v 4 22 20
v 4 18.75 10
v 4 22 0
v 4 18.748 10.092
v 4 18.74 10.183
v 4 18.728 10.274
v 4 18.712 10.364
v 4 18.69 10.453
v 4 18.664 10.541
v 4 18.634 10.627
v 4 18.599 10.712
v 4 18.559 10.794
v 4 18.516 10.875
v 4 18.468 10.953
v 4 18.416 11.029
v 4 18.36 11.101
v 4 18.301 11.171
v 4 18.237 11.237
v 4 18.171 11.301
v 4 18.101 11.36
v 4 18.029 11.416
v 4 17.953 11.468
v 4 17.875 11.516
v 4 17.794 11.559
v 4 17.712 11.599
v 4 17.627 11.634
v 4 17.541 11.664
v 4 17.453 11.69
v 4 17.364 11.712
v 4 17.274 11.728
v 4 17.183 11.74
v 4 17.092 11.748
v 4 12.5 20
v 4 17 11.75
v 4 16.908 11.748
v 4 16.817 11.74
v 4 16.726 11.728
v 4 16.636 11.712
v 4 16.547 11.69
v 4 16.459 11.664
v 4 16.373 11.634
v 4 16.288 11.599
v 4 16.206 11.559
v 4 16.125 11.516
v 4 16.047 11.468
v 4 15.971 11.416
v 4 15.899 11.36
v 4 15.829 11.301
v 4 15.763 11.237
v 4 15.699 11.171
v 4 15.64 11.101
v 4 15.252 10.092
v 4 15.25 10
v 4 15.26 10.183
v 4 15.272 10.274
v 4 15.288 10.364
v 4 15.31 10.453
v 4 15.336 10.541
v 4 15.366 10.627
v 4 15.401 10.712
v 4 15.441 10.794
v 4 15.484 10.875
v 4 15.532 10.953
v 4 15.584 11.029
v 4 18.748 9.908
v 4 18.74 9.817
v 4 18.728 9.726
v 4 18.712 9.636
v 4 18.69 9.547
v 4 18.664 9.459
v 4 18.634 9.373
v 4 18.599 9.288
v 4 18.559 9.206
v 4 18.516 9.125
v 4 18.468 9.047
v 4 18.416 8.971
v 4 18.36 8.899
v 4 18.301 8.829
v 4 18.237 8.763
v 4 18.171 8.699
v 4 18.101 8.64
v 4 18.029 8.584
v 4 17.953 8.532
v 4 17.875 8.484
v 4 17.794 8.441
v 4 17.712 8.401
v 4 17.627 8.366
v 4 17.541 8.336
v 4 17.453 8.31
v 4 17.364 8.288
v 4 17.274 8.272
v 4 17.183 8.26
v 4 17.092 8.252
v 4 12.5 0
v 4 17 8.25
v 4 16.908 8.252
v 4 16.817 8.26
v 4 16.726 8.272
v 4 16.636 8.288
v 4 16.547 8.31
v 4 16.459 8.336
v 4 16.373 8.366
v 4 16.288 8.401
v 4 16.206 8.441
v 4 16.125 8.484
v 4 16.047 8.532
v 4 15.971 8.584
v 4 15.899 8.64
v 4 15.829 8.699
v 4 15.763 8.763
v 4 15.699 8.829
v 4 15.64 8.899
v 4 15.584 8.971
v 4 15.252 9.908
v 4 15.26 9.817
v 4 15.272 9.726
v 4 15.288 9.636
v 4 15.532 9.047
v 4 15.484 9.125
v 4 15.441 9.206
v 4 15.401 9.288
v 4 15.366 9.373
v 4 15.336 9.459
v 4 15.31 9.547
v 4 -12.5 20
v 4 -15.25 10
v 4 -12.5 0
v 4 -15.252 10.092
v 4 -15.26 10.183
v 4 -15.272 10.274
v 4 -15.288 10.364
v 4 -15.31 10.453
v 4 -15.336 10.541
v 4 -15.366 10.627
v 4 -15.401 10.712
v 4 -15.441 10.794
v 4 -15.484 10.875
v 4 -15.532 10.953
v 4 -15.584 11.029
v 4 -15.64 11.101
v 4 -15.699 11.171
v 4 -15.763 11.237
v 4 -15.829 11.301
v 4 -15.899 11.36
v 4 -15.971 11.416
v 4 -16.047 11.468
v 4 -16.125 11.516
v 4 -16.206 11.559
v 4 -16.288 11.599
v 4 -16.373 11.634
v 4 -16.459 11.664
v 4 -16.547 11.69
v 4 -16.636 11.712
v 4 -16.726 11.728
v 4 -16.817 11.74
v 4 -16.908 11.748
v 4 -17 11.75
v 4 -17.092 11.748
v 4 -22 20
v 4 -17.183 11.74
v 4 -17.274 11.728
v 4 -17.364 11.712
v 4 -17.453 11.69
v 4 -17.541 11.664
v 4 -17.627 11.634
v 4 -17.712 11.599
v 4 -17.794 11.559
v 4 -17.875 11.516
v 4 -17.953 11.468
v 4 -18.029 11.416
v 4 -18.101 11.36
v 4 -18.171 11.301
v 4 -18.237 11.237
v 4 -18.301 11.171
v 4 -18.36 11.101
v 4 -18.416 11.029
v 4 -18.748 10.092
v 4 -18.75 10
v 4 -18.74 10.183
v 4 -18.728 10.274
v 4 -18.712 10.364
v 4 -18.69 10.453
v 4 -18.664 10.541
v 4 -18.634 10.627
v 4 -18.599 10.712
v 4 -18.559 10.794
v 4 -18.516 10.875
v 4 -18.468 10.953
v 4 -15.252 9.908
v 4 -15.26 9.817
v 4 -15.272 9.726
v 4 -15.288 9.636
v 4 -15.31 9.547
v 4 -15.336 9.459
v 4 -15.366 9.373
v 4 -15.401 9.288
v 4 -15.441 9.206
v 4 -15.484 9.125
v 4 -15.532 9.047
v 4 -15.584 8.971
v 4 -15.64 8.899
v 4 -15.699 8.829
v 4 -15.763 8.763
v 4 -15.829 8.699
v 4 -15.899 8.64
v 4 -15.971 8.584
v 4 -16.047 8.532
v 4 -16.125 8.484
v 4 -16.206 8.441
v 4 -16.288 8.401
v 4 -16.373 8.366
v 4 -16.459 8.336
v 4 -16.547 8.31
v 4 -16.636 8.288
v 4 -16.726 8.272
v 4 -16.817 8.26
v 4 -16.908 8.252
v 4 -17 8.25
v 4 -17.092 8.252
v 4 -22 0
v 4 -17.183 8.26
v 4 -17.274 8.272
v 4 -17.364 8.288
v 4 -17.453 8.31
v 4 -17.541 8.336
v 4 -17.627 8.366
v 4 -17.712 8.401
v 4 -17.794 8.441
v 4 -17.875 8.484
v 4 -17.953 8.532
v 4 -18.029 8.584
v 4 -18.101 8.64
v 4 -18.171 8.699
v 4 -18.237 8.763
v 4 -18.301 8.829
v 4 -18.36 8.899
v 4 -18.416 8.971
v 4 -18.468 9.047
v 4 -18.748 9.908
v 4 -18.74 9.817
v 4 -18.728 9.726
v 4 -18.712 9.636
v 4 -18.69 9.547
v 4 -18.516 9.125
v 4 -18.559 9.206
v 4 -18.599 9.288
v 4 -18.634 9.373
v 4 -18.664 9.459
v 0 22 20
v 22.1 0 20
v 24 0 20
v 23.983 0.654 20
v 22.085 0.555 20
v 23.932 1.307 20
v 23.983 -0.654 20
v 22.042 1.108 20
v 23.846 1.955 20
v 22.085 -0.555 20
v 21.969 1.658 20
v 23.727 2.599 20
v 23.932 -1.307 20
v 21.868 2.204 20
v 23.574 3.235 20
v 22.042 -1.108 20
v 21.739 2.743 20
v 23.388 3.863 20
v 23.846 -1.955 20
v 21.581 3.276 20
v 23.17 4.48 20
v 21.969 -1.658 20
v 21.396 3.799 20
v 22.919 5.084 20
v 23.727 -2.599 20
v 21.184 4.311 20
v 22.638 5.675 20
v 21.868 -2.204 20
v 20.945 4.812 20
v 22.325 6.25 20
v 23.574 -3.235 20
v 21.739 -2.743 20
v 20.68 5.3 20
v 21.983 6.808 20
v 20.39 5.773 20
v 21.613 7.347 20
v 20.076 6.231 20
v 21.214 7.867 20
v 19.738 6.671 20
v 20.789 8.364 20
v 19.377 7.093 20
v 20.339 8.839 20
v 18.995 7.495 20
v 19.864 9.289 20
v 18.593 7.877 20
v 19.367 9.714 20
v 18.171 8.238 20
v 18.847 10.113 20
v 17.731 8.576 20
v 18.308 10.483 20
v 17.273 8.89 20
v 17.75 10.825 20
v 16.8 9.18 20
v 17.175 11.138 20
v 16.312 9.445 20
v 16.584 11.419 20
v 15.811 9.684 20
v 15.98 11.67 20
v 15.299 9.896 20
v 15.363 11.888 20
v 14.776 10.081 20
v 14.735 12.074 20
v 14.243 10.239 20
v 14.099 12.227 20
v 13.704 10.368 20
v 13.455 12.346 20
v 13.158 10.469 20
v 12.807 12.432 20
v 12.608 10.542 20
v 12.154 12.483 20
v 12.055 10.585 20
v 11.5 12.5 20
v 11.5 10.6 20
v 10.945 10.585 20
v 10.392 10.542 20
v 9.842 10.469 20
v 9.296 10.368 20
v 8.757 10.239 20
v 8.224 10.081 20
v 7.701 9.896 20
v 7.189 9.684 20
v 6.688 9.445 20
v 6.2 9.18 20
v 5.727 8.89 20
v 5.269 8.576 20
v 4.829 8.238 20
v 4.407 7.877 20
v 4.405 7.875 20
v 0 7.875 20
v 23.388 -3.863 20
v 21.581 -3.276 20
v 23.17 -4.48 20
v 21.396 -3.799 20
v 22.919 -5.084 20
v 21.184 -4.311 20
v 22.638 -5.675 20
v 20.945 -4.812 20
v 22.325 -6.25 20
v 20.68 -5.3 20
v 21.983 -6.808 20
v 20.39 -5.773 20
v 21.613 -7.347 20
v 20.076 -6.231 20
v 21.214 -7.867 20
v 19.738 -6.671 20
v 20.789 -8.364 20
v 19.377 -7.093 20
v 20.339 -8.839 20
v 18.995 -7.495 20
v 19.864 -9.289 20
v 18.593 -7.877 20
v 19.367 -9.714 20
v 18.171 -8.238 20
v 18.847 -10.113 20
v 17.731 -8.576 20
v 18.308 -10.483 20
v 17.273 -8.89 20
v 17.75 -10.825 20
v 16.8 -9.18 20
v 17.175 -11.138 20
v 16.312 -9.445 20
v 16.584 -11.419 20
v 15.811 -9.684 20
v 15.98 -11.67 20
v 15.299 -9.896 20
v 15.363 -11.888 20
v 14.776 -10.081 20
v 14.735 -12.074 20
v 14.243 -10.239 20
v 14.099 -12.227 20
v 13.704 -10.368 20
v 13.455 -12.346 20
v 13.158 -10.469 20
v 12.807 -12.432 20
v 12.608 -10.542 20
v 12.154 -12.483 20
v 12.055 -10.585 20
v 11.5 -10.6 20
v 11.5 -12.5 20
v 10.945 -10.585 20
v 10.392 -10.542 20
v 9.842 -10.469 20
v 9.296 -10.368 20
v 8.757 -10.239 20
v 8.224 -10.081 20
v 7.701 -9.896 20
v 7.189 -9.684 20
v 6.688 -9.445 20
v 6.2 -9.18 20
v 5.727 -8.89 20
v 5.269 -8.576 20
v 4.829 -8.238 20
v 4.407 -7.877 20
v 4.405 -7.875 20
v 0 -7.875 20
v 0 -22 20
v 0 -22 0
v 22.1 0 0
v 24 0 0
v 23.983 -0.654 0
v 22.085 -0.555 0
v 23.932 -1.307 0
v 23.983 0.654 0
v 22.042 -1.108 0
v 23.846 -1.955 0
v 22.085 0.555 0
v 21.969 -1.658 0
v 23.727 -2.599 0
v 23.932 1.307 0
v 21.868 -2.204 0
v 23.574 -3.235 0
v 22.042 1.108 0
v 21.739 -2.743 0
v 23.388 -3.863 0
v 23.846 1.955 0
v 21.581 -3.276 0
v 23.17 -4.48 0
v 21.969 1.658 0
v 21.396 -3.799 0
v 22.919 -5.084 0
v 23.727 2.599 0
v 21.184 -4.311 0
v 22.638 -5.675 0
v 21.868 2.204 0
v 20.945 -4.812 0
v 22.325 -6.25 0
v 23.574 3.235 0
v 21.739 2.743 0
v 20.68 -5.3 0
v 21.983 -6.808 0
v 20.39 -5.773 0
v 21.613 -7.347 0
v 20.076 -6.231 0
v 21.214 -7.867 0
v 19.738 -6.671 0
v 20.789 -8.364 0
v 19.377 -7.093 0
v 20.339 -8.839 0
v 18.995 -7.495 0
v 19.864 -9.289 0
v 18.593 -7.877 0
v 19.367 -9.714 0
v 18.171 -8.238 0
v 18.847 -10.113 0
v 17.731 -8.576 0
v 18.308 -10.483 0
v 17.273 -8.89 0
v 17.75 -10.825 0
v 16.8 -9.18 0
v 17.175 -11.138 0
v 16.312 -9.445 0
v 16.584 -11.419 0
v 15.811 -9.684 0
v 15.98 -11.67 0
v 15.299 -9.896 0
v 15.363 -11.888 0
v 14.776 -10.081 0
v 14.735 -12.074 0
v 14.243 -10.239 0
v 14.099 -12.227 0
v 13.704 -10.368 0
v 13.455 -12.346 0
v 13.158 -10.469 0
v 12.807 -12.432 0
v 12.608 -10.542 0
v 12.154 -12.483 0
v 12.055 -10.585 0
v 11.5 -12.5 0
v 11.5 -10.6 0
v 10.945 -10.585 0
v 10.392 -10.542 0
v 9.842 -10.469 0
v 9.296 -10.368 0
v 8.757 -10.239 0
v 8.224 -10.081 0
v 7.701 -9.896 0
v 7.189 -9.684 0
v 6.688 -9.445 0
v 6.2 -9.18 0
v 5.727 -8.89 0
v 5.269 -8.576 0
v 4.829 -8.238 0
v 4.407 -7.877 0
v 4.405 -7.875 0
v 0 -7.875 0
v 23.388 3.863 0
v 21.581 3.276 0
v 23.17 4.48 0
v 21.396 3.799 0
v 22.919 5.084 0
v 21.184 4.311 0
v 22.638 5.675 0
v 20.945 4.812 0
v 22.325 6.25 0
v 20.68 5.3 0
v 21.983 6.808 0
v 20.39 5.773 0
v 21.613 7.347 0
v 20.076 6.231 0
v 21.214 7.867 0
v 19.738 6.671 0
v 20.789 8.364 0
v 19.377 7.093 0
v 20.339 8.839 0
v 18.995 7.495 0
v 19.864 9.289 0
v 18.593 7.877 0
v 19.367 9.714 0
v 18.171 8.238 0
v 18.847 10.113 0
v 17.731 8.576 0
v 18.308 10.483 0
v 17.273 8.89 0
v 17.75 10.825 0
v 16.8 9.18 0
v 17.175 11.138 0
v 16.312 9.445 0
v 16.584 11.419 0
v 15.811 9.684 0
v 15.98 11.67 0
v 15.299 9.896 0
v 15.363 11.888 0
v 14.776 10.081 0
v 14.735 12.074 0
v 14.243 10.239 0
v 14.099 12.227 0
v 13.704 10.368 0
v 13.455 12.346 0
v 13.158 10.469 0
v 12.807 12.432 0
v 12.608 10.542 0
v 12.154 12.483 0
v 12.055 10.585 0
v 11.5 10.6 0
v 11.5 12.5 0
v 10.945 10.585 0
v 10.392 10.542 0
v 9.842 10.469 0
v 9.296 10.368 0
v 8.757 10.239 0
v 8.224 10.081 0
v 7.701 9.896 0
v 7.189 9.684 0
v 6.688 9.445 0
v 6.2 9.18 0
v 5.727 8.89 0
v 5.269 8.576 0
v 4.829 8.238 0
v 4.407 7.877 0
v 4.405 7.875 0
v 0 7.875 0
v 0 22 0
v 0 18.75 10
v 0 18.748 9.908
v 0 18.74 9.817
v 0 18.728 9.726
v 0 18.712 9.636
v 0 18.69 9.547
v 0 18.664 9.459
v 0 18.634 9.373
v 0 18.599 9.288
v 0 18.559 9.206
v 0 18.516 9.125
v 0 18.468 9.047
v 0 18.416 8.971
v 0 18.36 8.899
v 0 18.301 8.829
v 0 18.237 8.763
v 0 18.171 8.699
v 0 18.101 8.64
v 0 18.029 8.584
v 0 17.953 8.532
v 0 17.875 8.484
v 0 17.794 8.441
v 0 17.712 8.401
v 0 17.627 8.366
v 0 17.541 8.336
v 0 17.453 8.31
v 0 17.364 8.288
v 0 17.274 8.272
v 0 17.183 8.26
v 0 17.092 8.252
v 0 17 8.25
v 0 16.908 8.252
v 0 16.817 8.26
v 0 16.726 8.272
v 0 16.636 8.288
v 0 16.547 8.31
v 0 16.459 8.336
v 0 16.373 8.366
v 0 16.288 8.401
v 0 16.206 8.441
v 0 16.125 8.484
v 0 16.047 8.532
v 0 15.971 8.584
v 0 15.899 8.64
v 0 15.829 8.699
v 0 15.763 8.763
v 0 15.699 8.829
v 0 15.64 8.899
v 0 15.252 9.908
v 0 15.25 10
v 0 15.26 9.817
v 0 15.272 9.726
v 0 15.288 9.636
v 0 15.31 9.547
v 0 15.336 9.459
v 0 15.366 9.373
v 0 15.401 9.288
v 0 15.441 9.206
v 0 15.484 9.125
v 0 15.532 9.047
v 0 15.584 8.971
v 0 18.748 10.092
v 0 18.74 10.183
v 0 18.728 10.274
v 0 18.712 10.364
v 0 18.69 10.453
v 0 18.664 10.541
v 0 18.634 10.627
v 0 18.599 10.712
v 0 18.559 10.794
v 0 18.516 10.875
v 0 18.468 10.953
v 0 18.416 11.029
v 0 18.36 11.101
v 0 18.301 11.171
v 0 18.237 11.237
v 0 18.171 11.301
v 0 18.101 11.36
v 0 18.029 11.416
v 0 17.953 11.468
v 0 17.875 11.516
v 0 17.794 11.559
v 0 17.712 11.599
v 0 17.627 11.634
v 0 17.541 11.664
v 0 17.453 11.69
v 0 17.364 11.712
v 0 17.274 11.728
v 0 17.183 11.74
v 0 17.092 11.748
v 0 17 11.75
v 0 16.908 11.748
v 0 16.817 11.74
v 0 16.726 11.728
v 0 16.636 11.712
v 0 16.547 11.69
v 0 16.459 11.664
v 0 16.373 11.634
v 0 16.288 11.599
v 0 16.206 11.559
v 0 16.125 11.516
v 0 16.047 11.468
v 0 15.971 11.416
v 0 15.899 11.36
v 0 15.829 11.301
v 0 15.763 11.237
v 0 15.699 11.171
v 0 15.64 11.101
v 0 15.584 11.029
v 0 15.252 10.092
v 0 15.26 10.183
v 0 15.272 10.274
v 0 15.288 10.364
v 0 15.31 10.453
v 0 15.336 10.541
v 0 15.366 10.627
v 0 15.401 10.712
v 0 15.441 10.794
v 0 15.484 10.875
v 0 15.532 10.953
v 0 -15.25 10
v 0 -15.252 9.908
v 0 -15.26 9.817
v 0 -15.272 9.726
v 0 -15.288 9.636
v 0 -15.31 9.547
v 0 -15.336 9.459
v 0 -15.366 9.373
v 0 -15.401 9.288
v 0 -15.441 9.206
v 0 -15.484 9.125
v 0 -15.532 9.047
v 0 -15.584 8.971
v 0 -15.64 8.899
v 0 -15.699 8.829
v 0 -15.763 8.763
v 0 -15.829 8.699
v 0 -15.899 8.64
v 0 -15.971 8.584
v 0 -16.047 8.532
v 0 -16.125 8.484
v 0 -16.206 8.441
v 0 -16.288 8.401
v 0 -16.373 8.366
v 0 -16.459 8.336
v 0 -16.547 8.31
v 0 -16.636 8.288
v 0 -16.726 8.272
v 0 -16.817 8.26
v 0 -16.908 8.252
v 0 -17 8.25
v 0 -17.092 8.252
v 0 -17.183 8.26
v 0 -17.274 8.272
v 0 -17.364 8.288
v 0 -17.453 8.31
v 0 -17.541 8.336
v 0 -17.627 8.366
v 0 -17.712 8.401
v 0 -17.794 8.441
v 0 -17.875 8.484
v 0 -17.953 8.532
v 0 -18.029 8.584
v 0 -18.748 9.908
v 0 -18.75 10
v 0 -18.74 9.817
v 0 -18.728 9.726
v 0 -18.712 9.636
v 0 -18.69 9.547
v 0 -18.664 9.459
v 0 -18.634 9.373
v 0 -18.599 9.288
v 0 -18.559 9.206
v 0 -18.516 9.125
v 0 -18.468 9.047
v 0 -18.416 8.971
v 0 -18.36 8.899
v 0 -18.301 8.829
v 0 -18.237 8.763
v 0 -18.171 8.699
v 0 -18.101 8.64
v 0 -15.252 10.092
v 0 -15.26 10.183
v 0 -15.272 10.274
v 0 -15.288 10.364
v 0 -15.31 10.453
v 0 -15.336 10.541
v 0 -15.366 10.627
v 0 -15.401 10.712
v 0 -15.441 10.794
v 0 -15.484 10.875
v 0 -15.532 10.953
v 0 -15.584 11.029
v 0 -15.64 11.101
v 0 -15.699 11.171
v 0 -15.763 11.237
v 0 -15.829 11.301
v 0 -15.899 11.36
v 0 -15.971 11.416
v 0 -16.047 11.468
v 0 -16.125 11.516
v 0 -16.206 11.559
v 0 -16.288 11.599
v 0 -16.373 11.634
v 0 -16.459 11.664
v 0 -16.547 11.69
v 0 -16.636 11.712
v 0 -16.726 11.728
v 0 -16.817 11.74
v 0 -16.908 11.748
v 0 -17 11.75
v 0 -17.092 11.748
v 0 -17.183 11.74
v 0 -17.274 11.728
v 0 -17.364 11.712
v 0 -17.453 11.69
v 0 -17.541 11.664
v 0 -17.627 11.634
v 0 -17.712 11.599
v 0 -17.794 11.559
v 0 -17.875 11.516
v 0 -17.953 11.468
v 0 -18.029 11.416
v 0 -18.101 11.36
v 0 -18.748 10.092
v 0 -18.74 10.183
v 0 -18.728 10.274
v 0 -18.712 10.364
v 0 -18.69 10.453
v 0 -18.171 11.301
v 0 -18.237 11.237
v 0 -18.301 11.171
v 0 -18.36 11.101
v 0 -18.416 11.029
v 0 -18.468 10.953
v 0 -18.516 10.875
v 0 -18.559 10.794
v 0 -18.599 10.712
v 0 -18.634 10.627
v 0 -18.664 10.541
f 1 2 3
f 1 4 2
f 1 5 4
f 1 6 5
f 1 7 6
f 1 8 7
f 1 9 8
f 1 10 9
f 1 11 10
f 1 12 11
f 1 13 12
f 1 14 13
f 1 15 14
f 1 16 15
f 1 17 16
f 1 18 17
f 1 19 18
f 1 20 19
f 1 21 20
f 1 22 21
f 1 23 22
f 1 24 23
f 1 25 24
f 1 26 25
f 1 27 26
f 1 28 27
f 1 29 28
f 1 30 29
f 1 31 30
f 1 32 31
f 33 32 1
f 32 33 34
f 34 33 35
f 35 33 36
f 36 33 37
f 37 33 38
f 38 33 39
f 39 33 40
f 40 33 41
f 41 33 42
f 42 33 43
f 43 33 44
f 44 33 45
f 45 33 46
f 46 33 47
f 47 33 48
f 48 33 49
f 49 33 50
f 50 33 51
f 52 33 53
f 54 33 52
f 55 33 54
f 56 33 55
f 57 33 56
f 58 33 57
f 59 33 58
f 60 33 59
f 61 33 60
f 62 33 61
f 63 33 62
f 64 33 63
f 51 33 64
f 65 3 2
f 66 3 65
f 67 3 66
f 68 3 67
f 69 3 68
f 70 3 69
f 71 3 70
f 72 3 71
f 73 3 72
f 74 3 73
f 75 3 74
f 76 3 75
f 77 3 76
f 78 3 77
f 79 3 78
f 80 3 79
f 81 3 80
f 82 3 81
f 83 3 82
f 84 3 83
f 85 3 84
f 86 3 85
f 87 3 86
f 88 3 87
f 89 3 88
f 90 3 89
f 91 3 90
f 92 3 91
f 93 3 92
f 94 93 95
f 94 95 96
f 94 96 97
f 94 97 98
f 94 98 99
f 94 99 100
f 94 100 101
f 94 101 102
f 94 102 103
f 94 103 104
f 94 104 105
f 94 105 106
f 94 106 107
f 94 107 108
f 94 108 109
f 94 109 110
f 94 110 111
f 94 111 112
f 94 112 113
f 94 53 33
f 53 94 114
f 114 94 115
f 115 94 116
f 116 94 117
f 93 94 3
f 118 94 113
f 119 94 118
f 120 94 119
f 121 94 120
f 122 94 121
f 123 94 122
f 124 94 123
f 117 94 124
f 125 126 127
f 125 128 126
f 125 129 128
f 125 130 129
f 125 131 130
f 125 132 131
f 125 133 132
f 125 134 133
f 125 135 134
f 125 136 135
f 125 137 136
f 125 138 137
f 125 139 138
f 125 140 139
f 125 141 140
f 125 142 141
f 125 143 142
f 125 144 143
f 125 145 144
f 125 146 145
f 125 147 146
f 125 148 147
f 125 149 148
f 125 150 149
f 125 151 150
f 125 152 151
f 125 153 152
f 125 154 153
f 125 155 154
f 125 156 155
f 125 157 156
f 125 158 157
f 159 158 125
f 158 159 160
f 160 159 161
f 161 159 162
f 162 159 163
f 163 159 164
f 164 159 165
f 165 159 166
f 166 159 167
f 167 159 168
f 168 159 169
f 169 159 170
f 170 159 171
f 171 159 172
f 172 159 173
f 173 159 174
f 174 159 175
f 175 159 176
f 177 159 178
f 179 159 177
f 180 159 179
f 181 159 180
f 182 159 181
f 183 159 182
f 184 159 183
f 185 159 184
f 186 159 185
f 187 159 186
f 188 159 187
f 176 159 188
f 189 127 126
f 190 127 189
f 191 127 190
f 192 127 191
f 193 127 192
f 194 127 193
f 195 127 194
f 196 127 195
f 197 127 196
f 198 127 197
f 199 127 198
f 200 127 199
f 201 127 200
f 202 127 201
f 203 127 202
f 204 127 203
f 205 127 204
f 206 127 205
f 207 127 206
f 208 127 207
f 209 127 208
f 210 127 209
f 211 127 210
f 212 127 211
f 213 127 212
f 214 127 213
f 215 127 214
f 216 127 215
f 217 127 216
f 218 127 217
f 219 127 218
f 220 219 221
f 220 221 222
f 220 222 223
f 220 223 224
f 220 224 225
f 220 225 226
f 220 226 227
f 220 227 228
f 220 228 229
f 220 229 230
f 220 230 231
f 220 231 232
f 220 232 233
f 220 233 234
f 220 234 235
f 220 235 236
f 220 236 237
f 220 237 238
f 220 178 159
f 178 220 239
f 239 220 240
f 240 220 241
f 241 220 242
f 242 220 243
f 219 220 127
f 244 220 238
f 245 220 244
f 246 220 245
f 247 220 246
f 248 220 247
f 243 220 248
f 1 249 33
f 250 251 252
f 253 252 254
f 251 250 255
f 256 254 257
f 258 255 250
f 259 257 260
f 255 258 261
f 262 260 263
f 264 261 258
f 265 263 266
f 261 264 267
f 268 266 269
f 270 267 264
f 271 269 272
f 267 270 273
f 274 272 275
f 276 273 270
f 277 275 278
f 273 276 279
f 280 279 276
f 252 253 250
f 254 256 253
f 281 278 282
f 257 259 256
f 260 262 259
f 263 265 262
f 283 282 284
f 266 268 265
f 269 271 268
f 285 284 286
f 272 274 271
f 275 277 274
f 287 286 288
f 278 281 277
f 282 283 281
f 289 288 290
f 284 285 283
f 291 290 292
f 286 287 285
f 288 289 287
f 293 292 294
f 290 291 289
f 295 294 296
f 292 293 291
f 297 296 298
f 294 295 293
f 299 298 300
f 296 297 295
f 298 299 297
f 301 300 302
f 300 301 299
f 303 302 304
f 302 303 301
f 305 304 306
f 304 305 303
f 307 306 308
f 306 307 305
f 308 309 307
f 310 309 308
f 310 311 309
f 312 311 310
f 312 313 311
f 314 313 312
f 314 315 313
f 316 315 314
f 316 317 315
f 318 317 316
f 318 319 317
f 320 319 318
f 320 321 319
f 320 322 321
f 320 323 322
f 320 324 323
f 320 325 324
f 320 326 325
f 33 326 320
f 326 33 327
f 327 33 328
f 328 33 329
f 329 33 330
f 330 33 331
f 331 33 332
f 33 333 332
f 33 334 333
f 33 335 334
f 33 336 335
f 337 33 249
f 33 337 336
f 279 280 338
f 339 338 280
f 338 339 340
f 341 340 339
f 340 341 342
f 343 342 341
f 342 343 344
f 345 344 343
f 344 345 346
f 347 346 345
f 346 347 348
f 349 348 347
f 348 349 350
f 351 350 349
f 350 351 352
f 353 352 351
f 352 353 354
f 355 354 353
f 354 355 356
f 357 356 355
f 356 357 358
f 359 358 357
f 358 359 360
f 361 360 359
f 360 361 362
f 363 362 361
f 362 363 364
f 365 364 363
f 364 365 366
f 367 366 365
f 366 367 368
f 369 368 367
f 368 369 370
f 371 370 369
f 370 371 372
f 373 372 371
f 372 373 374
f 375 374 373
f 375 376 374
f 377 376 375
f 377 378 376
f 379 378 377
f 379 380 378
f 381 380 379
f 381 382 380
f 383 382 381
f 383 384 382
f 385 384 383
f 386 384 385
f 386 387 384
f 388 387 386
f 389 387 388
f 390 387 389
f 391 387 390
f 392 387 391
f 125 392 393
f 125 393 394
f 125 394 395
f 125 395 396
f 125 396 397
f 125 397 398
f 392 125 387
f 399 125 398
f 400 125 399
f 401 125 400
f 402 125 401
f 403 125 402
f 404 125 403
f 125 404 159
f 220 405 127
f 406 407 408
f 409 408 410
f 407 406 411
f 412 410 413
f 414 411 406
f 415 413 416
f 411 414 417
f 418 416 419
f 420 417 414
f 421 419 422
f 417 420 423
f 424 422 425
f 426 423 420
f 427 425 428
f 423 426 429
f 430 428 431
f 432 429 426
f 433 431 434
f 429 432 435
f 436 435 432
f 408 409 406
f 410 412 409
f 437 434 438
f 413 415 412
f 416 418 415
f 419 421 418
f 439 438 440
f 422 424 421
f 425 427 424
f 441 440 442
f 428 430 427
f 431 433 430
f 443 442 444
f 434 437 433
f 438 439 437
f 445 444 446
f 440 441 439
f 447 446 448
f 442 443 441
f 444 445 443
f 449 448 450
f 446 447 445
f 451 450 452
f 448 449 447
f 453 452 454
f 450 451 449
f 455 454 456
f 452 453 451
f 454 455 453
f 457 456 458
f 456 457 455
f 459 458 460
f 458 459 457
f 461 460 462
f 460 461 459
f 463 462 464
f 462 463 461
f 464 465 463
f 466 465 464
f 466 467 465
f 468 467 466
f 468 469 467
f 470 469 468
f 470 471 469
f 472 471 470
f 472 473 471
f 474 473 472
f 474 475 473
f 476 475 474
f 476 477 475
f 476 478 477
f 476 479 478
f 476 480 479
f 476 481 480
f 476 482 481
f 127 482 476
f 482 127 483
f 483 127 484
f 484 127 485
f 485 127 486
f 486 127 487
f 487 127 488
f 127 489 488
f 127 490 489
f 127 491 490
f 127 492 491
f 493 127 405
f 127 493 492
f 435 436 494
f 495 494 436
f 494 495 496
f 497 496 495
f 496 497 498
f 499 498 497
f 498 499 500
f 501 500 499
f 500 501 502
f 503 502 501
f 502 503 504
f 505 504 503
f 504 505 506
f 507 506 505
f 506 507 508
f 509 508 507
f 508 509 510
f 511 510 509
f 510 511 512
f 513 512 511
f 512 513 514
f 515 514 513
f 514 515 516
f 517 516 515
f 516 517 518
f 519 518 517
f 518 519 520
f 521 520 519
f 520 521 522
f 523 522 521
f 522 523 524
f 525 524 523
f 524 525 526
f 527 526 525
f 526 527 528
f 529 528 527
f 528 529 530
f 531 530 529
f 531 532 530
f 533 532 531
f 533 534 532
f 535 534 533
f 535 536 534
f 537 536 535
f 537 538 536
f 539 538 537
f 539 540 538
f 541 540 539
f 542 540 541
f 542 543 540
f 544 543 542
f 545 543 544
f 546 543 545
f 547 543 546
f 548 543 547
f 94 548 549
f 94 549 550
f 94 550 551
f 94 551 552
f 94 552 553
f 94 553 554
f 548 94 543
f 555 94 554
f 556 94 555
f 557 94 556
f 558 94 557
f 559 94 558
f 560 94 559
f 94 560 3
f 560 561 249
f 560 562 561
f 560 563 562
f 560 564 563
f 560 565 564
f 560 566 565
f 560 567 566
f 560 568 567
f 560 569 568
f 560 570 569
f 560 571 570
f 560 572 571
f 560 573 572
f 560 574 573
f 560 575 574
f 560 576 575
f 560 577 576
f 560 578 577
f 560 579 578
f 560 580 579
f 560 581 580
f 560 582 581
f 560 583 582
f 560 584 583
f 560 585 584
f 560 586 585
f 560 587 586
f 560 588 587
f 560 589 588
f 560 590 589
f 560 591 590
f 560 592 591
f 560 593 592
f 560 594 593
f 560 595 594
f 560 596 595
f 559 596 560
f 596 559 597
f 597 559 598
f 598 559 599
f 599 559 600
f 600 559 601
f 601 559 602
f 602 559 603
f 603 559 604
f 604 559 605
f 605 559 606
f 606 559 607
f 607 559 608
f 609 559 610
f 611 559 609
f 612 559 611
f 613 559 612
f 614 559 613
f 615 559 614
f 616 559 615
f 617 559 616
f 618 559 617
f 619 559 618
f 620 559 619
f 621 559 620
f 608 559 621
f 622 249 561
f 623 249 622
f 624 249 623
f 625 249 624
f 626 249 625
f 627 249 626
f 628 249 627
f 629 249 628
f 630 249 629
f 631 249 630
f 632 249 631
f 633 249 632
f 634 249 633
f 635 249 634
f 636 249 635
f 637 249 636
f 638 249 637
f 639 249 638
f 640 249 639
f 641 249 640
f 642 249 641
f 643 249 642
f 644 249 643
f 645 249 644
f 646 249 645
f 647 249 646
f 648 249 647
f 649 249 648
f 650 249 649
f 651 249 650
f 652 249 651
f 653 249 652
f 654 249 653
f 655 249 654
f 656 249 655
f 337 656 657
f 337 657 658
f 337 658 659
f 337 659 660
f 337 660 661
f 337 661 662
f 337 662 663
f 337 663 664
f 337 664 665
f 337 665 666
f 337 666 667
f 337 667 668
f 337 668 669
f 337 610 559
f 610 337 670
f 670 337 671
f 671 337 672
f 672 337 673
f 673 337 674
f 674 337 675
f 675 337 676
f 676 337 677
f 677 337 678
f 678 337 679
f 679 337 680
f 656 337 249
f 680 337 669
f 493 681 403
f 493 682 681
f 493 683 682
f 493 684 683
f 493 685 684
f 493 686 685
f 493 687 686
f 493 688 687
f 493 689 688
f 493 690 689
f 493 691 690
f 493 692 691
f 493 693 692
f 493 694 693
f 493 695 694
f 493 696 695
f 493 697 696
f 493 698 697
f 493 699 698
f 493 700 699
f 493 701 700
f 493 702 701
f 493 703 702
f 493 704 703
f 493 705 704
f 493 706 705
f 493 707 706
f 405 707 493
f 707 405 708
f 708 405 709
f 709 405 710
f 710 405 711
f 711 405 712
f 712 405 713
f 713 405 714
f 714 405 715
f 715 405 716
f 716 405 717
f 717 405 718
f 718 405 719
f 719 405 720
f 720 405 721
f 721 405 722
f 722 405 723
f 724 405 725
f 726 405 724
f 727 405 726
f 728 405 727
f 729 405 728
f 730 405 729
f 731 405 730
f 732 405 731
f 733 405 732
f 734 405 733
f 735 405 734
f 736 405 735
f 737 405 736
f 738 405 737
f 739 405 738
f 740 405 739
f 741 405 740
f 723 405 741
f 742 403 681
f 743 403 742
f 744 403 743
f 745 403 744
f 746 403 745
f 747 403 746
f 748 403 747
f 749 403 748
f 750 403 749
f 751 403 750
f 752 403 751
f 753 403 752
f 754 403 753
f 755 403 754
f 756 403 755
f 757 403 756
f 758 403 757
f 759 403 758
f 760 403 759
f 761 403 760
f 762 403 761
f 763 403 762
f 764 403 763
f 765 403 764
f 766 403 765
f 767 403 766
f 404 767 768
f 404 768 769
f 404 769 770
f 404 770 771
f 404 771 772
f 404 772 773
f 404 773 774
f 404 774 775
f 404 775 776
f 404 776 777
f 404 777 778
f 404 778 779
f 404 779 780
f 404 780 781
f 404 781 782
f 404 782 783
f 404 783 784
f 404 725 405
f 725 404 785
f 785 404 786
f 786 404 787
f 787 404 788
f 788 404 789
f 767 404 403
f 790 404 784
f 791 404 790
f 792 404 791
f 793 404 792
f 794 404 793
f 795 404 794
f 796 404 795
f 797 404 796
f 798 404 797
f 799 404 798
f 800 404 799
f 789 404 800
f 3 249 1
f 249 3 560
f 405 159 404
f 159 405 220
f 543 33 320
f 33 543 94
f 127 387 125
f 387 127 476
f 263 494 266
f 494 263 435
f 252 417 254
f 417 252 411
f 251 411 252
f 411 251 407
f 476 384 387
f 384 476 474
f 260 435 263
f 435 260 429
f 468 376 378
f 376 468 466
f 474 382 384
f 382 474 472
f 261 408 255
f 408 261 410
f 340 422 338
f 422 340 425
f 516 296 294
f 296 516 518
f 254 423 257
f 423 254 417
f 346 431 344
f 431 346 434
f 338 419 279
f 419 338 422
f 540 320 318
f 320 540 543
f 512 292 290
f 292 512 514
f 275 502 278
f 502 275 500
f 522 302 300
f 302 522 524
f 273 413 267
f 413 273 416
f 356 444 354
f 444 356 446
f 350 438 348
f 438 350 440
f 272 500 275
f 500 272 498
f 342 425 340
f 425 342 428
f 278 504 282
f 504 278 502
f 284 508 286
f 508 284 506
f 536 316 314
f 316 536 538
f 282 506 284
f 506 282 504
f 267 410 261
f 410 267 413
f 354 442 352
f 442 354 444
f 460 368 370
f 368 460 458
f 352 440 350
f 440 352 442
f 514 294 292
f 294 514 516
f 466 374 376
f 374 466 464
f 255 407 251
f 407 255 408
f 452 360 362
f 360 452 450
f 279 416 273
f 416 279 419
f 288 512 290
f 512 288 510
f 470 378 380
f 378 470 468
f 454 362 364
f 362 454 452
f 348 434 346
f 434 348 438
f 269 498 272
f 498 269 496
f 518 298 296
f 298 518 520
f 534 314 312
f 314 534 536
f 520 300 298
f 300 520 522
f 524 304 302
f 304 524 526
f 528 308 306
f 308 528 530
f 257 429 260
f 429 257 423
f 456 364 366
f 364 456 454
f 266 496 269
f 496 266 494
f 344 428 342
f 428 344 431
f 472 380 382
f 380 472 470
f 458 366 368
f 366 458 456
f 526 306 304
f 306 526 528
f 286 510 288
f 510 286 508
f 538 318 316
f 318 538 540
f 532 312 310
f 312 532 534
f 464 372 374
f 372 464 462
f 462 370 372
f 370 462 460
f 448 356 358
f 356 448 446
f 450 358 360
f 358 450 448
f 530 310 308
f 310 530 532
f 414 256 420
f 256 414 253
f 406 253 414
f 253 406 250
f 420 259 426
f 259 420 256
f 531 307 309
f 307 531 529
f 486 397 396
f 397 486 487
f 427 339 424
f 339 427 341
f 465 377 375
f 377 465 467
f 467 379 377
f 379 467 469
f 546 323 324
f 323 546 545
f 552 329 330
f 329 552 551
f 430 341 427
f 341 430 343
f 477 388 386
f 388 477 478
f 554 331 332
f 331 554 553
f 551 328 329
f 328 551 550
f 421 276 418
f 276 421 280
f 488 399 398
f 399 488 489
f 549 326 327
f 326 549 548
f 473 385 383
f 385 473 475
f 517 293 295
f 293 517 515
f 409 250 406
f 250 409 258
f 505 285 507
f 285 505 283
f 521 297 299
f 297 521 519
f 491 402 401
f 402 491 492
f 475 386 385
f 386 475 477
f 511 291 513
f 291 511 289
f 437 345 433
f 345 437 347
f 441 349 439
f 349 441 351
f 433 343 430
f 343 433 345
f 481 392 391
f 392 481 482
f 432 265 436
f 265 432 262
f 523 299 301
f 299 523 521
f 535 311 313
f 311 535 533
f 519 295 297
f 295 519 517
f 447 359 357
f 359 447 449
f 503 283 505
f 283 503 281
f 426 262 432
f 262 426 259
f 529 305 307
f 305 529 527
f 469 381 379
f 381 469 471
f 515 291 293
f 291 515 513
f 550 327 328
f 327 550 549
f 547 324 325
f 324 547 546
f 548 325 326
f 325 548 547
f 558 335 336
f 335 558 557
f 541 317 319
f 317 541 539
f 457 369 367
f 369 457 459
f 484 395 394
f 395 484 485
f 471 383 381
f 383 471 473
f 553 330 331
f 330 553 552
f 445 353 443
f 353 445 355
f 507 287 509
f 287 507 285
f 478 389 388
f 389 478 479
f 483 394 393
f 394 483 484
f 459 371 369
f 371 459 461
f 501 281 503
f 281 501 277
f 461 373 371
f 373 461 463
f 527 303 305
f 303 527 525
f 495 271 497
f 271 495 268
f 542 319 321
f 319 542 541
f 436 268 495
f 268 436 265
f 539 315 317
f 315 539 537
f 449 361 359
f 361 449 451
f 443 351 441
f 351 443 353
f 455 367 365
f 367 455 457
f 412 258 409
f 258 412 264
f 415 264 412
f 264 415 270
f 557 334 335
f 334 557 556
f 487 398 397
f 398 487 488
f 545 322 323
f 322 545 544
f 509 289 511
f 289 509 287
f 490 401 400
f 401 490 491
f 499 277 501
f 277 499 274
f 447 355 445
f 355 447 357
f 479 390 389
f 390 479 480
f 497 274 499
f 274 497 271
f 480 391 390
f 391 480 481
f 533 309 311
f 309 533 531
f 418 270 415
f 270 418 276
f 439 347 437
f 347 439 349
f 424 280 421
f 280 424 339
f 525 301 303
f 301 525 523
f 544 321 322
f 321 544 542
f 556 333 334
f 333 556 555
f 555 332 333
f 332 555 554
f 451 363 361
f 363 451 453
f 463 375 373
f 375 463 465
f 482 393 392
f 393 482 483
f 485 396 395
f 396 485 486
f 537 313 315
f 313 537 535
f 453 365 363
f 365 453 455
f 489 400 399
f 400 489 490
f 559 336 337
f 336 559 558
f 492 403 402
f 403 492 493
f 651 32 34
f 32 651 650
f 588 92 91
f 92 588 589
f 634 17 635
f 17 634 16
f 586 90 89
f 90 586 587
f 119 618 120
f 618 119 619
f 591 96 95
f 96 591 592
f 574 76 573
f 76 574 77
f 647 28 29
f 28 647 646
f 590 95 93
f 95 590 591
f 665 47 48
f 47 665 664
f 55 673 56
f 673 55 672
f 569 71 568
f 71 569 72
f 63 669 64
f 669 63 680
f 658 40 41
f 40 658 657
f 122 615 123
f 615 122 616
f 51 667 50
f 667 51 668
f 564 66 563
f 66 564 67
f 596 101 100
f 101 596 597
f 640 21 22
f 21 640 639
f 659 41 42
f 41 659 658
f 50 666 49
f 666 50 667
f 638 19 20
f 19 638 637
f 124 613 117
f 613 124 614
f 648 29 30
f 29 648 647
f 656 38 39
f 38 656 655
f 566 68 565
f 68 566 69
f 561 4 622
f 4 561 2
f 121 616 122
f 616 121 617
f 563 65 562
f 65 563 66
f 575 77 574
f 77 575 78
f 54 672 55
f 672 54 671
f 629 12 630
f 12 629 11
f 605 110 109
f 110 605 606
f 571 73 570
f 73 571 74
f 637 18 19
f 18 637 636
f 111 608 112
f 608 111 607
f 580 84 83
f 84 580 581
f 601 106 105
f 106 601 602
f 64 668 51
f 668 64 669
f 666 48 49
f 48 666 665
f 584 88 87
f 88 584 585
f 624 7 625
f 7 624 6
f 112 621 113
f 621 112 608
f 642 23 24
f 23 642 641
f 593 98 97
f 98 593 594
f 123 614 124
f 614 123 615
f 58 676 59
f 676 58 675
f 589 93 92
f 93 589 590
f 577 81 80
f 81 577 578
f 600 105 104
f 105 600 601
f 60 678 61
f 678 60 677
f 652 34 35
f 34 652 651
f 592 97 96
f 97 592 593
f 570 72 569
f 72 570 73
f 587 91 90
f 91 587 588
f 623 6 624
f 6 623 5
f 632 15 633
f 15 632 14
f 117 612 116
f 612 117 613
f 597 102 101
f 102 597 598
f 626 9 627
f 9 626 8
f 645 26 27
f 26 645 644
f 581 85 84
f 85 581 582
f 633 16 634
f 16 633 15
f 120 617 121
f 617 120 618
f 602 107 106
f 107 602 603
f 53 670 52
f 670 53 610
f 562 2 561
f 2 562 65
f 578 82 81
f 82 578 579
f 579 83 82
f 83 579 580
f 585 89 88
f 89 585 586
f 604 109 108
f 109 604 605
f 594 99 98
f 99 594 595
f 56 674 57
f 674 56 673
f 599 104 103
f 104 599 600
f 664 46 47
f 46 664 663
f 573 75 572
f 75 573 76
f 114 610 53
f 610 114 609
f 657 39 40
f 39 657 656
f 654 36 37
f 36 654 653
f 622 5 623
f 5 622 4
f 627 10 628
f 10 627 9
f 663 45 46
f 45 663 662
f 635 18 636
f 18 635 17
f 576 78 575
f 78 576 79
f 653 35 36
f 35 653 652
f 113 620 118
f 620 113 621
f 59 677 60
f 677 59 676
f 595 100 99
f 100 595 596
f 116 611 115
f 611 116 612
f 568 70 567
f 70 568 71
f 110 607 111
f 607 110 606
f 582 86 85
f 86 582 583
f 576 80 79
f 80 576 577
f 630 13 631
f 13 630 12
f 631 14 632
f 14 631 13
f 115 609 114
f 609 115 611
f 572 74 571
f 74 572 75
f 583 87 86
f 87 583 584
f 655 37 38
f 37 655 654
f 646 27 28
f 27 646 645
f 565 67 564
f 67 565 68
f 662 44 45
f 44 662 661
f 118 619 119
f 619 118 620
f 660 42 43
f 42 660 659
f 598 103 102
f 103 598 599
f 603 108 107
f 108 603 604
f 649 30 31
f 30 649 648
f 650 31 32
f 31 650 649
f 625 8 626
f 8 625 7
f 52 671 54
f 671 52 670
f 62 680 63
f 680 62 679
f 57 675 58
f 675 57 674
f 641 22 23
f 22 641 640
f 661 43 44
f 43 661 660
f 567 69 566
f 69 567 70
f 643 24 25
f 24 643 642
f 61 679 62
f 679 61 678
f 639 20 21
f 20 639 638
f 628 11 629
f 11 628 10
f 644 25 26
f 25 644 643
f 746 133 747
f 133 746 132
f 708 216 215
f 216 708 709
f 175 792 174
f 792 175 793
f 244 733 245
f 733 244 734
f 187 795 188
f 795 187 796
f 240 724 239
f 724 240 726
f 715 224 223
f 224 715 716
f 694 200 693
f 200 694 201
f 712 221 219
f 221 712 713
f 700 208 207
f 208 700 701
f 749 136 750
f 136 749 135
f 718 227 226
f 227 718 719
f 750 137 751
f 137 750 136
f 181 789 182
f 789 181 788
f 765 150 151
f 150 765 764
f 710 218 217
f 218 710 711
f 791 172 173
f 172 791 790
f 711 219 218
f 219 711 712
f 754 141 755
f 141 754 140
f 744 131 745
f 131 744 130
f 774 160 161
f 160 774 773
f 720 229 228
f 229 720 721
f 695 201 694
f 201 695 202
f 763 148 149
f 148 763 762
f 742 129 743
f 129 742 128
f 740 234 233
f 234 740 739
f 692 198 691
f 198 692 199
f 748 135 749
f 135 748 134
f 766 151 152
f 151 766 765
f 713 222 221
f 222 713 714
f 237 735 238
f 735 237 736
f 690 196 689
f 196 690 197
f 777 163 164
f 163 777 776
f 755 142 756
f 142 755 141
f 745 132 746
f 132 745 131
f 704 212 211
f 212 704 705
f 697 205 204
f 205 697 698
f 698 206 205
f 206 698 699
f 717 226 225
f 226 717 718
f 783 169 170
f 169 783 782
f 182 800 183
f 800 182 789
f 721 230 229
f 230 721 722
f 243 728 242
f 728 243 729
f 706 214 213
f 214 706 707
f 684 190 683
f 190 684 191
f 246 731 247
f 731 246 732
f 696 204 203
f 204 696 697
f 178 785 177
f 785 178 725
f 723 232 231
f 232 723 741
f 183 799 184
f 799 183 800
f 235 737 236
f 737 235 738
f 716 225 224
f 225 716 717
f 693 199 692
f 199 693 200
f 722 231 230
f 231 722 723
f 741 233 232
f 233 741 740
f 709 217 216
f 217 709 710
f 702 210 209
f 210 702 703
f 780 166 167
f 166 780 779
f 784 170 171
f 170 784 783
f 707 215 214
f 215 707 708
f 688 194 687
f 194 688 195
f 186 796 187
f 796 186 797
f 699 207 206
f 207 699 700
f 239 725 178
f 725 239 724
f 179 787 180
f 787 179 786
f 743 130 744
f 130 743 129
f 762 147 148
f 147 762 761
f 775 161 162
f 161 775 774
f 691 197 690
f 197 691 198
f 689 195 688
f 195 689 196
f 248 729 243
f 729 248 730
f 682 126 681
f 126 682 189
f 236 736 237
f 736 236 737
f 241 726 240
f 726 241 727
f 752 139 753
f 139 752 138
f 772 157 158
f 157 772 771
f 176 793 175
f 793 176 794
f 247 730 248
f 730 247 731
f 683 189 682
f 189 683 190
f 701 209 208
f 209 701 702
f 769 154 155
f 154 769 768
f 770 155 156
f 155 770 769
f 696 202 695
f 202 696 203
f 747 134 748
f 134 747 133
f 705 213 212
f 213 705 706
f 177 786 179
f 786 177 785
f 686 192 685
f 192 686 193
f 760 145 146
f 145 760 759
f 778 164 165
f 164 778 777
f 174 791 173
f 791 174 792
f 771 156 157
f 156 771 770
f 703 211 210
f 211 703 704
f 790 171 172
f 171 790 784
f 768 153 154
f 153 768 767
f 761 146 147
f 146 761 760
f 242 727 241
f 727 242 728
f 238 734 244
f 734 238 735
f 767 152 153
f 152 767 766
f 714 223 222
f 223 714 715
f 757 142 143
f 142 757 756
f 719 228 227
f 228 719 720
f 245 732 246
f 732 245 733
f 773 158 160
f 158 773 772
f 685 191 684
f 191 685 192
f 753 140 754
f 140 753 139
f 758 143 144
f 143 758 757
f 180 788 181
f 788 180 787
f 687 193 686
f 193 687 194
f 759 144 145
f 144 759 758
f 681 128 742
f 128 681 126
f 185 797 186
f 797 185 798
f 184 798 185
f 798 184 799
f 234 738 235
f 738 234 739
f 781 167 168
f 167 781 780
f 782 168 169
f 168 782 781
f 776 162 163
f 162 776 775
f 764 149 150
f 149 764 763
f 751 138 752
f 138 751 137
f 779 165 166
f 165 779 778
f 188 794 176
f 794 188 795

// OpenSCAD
$fn=120;
bearing_d= 21.0;
bearing_d_tolerance=0.2;
bearing_holder_d=bearing_d+4;
bolt_diameter = 3.5;
total_width=bearing_holder_d+2*bolt_diameter+2*6;

thickness=4;
end_offset=5;

tolerance = 0.3;

difference(){
    

union(){

translate([0,-total_width/2,0])
cube([thickness,total_width, 20]);
translate([1,-bearing_holder_d/2,0])
cube([bearing_d/2,bearing_holder_d,20]);

translate([bearing_d/2+1,0,0])
cylinder(h=20, d=bearing_holder_d);
}   
union(){
    
translate([bearing_d/2+1,0,-0.001])
cylinder(h=20+0.01, d=bearing_d+bearing_d_tolerance);
    
cube([bearing_holder_d/2,bearing_d*0.75,500], center =true);

translate([-thickness,-total_width/2,-0.01])
cube([thickness,total_width, 22]);


translate([0,total_width/2-end_offset,10])
rotate([0,90,0])
cylinder(h=100, d=bolt_diameter, center=true);


translate([0,-total_width/2+end_offset,10])
rotate([0,90,0])
cylinder(h=100, d=bolt_diameter, center=true);
}


}
    
